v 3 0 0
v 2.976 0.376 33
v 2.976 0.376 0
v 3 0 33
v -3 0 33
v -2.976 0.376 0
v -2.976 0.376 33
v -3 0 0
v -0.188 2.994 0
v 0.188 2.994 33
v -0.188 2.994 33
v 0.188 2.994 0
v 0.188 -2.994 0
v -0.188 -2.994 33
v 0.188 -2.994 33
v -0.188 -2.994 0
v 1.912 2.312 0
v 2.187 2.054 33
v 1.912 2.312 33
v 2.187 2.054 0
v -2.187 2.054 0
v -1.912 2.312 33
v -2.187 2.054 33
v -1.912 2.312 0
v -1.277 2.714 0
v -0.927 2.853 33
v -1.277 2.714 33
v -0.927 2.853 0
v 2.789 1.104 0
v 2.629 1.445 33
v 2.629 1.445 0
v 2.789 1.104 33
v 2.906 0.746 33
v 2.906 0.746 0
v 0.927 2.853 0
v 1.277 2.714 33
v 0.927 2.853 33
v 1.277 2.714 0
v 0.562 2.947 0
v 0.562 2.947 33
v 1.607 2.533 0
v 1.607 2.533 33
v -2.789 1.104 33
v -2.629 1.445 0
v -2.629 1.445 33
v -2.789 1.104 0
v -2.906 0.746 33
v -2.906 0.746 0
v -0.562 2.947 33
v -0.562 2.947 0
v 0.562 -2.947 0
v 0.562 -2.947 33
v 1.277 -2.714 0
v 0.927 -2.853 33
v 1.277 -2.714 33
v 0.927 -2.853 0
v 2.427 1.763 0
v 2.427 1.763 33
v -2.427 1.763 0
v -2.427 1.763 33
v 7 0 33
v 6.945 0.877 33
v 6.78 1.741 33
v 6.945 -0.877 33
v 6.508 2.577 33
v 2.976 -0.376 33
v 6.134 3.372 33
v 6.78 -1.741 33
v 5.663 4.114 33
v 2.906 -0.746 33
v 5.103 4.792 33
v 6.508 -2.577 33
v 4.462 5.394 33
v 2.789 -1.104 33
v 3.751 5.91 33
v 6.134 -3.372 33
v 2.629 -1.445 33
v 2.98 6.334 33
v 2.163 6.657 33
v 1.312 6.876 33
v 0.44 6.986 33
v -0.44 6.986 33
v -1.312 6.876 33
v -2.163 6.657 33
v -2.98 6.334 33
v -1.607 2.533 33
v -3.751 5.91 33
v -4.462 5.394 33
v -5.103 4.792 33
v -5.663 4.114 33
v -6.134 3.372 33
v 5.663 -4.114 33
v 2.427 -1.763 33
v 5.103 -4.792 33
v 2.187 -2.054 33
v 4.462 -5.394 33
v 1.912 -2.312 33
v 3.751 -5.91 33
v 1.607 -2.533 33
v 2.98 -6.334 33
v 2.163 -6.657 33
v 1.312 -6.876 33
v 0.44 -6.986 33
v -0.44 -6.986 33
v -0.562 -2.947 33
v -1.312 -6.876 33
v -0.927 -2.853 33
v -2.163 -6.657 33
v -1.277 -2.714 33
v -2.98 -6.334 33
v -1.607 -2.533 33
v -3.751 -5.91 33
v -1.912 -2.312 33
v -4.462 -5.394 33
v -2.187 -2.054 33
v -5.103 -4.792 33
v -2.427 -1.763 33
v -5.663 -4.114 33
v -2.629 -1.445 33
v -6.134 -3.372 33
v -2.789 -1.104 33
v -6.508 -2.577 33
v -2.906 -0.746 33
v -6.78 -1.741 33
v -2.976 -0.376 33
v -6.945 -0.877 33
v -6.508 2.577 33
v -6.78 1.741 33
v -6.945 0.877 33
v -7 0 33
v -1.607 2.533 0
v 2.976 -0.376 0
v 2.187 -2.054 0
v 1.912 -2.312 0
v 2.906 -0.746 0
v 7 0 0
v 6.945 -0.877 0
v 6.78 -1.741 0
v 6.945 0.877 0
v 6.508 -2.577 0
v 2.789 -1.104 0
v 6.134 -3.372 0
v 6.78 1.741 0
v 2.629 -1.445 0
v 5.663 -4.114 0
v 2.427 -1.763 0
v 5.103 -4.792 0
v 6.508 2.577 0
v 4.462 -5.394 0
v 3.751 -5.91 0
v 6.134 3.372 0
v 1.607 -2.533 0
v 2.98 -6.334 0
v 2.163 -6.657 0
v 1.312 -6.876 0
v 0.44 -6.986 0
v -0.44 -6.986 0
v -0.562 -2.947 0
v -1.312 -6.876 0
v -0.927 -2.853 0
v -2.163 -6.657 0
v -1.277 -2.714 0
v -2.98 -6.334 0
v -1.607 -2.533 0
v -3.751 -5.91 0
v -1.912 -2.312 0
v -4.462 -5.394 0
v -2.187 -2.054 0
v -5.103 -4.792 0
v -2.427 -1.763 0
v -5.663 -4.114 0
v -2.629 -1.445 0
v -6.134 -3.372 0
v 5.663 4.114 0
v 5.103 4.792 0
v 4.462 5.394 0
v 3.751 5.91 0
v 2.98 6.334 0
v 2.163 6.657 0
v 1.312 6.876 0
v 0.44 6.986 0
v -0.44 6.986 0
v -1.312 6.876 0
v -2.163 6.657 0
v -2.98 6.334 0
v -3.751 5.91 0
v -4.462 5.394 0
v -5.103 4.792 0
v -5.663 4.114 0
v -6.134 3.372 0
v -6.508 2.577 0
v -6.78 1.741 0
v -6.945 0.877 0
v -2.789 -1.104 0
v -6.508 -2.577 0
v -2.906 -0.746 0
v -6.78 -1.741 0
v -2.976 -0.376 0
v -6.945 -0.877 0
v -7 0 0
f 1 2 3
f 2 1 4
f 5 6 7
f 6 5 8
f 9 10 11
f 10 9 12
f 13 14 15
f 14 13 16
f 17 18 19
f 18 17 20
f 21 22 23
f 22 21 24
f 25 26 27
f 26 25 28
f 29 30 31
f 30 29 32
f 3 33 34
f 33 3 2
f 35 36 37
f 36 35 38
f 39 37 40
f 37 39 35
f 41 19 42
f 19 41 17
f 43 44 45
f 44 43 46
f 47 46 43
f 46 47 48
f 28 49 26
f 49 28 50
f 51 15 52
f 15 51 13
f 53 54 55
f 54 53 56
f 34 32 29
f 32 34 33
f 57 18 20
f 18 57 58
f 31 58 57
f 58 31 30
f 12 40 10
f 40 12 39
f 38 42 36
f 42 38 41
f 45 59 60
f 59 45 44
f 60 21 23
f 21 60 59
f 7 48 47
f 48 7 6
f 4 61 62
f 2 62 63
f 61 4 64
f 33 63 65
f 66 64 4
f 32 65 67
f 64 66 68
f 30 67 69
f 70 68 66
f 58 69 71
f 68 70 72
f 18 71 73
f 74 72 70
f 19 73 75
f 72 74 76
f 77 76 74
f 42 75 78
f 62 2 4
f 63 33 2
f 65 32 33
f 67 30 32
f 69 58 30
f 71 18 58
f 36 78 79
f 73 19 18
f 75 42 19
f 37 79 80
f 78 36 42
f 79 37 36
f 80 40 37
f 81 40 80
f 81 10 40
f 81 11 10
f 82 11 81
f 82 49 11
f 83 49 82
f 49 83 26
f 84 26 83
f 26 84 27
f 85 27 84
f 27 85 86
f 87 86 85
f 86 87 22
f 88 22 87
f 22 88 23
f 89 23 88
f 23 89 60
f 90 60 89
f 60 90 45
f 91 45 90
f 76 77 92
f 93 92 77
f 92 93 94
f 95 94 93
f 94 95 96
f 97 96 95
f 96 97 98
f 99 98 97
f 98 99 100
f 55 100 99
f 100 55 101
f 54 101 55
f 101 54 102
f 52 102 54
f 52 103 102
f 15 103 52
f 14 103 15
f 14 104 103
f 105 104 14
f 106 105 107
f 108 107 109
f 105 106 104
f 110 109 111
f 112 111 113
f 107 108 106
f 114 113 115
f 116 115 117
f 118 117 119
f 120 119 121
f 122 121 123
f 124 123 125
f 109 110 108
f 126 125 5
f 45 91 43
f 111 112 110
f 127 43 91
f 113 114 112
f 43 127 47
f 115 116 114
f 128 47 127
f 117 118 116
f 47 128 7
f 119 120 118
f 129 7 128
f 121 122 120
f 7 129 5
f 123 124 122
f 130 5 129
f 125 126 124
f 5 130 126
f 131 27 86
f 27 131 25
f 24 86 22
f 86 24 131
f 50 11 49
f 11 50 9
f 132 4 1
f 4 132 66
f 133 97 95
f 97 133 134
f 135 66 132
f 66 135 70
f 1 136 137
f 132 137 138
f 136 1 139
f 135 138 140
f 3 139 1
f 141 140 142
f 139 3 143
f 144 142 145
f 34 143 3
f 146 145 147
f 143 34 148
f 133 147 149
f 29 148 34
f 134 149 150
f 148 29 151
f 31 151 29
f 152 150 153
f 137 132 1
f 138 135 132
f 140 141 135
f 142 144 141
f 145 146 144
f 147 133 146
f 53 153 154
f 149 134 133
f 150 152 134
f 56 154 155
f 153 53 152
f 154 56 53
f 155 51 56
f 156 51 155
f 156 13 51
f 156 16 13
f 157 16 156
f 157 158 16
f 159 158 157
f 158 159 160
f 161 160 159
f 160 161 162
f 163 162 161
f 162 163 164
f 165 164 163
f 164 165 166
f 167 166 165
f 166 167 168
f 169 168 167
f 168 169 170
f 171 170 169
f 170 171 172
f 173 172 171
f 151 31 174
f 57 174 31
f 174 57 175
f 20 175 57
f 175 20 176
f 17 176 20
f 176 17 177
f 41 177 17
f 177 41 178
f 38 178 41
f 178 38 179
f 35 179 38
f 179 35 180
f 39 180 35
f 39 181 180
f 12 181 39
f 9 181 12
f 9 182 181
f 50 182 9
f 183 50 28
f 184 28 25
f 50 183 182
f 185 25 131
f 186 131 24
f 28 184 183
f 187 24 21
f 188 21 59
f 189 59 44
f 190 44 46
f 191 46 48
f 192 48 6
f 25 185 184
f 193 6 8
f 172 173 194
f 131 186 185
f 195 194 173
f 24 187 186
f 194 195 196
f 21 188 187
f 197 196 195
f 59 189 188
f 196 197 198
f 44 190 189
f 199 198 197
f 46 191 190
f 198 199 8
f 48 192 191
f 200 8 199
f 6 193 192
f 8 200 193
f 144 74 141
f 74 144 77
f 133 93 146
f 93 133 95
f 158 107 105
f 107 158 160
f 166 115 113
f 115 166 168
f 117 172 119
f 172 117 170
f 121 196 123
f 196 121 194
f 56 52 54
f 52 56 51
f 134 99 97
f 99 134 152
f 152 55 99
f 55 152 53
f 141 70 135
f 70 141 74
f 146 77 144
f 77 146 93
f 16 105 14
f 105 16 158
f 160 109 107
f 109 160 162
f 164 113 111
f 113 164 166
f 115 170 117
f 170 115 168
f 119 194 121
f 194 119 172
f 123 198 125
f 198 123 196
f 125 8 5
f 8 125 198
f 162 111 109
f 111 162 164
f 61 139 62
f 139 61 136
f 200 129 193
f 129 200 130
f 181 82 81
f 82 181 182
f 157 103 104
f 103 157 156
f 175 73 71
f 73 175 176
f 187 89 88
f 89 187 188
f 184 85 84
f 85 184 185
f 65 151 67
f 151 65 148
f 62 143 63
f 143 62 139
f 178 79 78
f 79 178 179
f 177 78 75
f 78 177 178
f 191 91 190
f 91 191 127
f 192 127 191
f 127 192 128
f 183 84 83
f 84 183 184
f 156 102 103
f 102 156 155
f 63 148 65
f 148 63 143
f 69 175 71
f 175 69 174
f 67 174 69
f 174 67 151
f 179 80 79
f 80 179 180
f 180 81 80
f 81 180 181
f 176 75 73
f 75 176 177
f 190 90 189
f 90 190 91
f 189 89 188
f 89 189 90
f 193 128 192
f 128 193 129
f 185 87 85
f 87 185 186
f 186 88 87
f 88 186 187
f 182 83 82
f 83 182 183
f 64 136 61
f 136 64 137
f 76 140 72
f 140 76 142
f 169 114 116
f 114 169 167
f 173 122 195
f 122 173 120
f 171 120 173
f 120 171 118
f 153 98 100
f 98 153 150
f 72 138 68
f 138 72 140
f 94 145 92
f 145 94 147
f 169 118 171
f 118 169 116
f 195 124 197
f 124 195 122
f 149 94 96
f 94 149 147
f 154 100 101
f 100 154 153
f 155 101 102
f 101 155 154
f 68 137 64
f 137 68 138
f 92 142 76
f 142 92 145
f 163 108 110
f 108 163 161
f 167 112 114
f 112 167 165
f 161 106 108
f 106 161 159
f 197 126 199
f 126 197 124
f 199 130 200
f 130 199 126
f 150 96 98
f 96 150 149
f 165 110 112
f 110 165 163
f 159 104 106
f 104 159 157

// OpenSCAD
$fn = 50;


difference() {
	union() {
		cylinder(h = 33, r = 7.0000000000);
	}
	union() {
		translate(v = [0.0000000000, 0.0000000000, -100.0000000000]) {
			cylinder(h = 200, r = 3.0000000000);
		}
		translate(v = [0.0000000000, 0.0000000000, -100.0000000000]) {
			cylinder(h = 200, r = 3.0000000000);
		}
		translate(v = [0.0000000000, 0.0000000000, -100.0000000000]) {
			cylinder(h = 200, r = 3.0000000000);
		}
		translate(v = [0.0000000000, 0.0000000000, -100.0000000000]) {
			cylinder(h = 200, r = 3.0000000000);
		}
	}
}
